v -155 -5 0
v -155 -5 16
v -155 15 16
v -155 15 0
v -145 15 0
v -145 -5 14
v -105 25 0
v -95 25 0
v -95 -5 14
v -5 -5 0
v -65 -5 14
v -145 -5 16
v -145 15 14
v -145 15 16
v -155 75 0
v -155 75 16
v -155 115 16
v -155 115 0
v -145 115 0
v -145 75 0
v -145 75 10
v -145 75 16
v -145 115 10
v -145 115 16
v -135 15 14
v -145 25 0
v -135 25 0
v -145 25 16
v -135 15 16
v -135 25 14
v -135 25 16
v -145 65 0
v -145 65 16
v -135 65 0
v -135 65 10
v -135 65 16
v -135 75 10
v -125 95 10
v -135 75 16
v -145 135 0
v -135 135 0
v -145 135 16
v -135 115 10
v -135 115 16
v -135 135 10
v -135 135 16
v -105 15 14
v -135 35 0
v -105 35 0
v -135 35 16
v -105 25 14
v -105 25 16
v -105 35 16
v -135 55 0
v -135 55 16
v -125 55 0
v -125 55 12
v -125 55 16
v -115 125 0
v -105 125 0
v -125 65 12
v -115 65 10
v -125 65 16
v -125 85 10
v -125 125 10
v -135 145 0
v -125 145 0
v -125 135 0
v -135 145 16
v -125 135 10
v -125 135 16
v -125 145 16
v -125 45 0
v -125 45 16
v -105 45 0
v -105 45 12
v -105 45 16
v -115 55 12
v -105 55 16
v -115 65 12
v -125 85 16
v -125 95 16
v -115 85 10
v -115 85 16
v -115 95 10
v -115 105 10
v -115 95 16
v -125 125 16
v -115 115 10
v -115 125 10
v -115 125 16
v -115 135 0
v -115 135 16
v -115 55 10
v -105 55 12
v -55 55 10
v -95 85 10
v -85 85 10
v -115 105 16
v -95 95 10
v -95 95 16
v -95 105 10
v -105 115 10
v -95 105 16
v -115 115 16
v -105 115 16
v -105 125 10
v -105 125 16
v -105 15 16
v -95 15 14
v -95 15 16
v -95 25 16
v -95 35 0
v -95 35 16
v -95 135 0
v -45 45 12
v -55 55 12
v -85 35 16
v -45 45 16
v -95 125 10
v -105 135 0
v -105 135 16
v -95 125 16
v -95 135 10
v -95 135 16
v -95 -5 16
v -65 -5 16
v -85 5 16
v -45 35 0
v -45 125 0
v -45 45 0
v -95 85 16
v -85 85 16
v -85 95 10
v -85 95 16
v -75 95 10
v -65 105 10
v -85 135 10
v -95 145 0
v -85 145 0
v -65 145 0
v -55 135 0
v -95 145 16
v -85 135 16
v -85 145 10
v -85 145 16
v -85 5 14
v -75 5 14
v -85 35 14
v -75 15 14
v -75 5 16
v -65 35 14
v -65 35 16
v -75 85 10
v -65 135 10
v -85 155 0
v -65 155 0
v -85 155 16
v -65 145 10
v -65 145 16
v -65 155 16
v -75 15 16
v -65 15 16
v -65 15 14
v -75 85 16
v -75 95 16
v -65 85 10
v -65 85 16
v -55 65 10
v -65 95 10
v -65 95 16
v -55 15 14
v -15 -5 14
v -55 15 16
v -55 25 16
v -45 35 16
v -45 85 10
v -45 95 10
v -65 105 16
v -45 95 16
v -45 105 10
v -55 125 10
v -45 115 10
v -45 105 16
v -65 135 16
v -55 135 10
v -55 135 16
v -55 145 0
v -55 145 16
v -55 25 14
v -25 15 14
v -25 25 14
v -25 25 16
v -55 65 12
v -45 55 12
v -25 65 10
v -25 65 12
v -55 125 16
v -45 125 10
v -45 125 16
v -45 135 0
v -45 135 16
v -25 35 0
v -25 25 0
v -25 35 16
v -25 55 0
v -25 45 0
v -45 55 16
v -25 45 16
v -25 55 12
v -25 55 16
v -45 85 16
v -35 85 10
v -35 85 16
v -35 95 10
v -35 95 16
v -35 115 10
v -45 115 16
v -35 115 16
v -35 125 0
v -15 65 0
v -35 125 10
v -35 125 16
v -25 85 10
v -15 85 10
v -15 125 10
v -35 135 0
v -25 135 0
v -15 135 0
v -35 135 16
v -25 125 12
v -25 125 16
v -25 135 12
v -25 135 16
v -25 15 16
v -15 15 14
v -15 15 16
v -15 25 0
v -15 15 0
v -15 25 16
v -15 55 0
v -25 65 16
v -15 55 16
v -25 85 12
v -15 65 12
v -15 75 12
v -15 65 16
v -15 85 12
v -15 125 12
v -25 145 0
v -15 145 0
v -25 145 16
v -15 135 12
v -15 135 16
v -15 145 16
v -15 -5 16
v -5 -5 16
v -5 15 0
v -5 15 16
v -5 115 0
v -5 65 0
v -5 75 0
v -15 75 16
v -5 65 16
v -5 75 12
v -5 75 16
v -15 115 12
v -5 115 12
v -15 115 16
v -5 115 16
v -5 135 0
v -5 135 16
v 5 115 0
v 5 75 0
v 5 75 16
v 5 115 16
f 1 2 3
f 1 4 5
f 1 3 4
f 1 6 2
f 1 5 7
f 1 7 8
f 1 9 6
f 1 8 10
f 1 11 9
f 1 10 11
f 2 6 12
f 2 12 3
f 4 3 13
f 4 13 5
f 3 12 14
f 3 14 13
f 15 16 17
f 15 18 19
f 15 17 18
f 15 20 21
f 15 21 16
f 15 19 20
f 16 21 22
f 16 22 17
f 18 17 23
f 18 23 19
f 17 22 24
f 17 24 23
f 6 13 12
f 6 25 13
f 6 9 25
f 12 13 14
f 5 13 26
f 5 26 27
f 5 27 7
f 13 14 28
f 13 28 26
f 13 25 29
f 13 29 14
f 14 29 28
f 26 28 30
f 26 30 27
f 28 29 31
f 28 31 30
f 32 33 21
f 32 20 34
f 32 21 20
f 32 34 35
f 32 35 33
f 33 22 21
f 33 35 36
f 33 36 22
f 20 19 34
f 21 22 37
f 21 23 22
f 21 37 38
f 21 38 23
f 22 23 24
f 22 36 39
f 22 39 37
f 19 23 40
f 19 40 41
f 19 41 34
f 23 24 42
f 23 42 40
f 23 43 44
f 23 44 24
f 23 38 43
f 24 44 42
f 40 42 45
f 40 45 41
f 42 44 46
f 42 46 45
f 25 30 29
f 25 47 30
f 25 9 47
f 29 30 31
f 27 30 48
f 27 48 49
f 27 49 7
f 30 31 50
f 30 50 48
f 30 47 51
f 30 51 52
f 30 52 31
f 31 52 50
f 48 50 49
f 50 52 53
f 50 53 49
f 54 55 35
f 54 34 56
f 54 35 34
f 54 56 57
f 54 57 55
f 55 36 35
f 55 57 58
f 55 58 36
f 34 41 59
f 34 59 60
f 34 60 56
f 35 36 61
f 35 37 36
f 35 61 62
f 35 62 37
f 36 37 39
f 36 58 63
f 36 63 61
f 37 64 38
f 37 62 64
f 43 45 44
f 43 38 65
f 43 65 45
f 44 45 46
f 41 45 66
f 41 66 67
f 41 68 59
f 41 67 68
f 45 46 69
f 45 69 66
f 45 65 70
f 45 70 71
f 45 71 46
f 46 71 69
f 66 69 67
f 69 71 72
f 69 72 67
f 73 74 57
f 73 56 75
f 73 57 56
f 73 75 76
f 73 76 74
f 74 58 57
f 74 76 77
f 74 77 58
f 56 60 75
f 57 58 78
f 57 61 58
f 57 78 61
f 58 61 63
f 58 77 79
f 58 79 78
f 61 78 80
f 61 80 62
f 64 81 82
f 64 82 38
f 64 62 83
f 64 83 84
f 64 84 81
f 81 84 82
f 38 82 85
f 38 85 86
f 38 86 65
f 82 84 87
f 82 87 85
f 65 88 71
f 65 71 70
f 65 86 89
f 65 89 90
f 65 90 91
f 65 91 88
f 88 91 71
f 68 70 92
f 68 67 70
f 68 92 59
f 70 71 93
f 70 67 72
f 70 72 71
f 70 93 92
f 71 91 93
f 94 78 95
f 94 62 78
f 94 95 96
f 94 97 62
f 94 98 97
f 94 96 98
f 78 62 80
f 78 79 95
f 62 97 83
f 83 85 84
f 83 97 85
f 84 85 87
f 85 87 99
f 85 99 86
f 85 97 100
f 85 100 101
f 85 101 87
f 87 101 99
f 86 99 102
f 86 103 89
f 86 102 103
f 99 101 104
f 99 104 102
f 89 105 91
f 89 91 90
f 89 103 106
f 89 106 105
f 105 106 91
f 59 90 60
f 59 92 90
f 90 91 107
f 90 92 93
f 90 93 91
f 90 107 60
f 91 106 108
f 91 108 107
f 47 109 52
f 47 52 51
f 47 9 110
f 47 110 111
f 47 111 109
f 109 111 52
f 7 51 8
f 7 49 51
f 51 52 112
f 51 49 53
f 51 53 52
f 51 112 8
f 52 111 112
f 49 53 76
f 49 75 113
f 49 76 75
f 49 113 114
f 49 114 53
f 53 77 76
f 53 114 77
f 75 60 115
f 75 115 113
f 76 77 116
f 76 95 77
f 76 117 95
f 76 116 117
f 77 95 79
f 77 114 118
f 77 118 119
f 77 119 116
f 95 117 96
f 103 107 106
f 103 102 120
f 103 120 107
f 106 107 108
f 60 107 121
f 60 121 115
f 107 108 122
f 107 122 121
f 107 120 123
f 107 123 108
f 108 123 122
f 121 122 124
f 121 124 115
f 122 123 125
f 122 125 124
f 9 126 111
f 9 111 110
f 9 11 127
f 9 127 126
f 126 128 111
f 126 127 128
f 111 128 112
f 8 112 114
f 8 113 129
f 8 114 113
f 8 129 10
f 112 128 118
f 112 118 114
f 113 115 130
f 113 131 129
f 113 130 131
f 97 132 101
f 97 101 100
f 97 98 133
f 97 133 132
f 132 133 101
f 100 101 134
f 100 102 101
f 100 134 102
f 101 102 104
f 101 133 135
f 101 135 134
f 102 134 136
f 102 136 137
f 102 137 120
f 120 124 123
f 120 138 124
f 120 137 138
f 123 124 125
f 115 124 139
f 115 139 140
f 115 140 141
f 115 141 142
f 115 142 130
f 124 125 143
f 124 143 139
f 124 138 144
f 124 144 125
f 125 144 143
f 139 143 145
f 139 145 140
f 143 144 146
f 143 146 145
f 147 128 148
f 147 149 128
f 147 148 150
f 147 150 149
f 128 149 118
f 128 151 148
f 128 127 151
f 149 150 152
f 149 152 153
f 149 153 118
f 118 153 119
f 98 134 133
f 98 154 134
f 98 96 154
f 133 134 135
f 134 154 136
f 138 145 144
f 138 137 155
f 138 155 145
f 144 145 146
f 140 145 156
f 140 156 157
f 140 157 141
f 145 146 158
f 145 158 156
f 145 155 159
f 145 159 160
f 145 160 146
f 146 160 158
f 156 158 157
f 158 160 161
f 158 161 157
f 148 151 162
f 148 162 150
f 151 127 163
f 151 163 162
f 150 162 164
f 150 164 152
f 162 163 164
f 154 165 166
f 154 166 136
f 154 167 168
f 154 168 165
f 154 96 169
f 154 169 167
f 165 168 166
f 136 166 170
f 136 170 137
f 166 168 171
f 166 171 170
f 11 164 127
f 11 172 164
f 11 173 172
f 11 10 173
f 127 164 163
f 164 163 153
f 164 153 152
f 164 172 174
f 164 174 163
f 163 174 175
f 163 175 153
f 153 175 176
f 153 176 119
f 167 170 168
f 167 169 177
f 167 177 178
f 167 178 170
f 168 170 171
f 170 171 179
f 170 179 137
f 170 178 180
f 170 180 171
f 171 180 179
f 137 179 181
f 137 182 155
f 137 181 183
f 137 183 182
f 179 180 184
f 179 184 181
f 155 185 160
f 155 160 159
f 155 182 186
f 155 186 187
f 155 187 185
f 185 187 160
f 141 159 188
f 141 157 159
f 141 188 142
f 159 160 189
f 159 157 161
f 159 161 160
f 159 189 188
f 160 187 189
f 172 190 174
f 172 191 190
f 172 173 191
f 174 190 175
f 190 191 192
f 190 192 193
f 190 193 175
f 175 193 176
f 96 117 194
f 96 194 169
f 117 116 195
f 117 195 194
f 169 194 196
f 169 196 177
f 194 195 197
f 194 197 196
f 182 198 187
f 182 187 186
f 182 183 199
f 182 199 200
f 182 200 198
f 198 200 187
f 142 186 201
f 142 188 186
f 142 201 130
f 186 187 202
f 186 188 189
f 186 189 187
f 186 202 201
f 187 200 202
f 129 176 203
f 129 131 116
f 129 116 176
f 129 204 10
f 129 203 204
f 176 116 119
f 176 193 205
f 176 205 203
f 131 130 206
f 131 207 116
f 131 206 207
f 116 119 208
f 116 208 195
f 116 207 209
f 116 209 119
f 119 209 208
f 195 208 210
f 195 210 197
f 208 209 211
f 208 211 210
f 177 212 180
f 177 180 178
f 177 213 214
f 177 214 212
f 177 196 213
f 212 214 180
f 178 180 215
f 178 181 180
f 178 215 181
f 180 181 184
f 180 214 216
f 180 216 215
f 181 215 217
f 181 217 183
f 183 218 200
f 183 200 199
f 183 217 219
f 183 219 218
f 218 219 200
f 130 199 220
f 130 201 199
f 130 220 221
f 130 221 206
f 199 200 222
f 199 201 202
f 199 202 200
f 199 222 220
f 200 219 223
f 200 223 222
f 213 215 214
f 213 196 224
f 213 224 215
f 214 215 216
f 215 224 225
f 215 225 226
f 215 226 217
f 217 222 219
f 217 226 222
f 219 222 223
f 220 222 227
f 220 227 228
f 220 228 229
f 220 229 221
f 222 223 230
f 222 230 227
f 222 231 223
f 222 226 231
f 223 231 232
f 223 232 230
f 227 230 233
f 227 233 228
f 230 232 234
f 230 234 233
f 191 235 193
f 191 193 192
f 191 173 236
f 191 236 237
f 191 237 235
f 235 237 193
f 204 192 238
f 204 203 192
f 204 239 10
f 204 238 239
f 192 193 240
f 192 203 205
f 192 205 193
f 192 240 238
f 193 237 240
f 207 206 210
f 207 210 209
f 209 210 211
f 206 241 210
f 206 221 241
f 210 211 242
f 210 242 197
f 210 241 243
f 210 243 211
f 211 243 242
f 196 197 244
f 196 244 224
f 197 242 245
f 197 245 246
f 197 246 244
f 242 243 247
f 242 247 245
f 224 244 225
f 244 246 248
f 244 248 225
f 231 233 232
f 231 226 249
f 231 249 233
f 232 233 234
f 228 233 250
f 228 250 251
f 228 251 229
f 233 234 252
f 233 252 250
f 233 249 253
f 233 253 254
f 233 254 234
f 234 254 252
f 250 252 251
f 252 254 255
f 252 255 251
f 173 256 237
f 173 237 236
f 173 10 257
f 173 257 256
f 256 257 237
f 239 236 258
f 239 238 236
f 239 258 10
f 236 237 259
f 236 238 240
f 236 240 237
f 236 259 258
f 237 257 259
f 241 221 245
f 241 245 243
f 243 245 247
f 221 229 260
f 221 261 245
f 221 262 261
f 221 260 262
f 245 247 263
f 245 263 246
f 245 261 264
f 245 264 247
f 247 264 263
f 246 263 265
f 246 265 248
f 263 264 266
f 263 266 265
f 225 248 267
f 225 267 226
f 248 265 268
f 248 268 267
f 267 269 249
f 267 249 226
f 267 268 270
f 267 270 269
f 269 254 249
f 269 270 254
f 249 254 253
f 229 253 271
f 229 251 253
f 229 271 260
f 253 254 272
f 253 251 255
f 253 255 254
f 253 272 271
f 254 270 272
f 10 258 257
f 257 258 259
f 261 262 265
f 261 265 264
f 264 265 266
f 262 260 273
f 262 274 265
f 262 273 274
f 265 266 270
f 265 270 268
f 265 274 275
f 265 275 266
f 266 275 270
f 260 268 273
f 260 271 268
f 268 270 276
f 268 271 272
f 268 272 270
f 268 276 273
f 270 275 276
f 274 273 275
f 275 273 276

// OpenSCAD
// file: pixel_canvas.scad
module pixel(x, y, pixel_color, pixel_height = 1.0) {
    color(pixel_color) {
	linear_extrude(height = pixel_height) {
	    translate([x, y]) {
		square(size = 1, center=true);
	    }
	}
    }
}

module pixel_canvas(canvas_size, pixel_count, pixels, color_palette, color_heights) {
    pixel_size = canvas_size / pixel_count;
    scale([pixel_size, pixel_size, 1.0]) {
	for (coord = pixels) {
	    x = coord[0];
	    y = coord[1];
	    color_index = coord[2];
	    pixel(x=x, y=y, pixel_color=color_palette[color_index], pixel_height=color_heights[color_index] * pixel_size);
	}
    }
}
// main file
use <pixel_canvas.scad>

COLOR_PALETTE = [
  "orange",
  "red",
  "green",
  "black",
];

COLOR_HEIGHTS = [
  1.0,
  1.2,
  1.4,
  1.6,
];

PIXELS = [
	  [-8, 15, 3], [-7, 15, 3],
	  [-13, 14, 3], [-9, 14, 3], [-8, 14, 0], [-7, 14, 0], [-6, 14, 3], [-2, 14, 3],
	  [-14, 13, 3], [-13, 13, 0], [-12, 13, 3], [-10, 13, 3], [-9, 13, 0], [-8, 13, 0], [-7, 13, 0], [-6, 13, 0], [-5, 13, 3], [-3, 13, 3], [-2, 13, 1], [-1, 13, 3],
	  [-14, 12, 3], [-13, 12, 0], [-12, 12, 0], [-11, 12, 3], [-10, 12, 0], [-9, 12, 0], [-8, 12, 0], [-7, 12, 0], [-6, 12, 0], [-5, 12, 0], [-4, 12, 3], [-3, 12, 0], [-2, 12, 0], [-1, 12, 3],
	  [-15, 11, 3], [-14, 11, 0], [-13, 11, 0], [-12, 11, 0], [-11, 11, 0], [-10, 11, 0], [-9, 11, 0], [-8, 11, 0], [-7, 11, 0], [-6, 11, 0], [-5, 11, 0], [-4, 11, 0], [-3, 11, 0], [-2, 11, 0], [-1, 11, 1], [0, 11, 3],
	  [-15, 10, 3], [-14, 10, 0], [-13, 10, 0], [-12, 10, 0], [-11, 10, 3], [-10, 10, 3], [-9, 10, 0], [-8, 10, 0], [-7, 10, 0], [-6, 10, 3], [-5, 10, 3], [-4, 10, 0], [-3, 10, 0], [-2, 10, 0], [-1, 10, 1], [0, 10, 3],
	  [-15, 9, 3], [-14, 9, 0], [-13, 9, 0], [-12, 9, 3], [-11, 9, 0], [-10, 9, 0], [-9, 9, 3], [-8, 9, 0], [-7, 9, 3], [-6, 9, 0], [-5, 9, 0], [-4, 9, 3], [-3, 9, 0], [-2, 9, 0], [-1, 9, 1], [0, 9, 3],
	  [-15, 8, 3], [-14, 8, 0], [-13, 8, 0], [-12, 8, 0], [-11, 8, 0], [-10, 8, 0], [-9, 8, 0], [-8, 8, 0], [-7, 8, 0], [-6, 8, 0], [-5, 8, 0], [-4, 8, 0], [-3, 8, 0], [-2, 8, 1], [-1, 8, 1], [0, 8, 3],
	  [-14, 7, 3], [-13, 7, 0], [-12, 7, 0], [-11, 7, 0], [-10, 7, 0], [-9, 7, 0], [-8, 7, 0], [-7, 7, 0], [-6, 7, 0], [-5, 7, 0], [-4, 7, 0], [-3, 7, 0], [-2, 7, 1], [-1, 7, 3],
	  [-13, 6, 3], [-12, 6, 1], [-11, 6, 0], [-10, 6, 0], [-9, 6, 0], [-8, 6, 0], [-7, 6, 0], [-6, 6, 0], [-5, 6, 1], [-4, 6, 1], [-3, 6, 1], [-2, 6, 3],
	  [-12, 5, 3], [-11, 5, 3], [-10, 5, 1], [-9, 5, 1], [-8, 5, 1], [-7, 5, 1], [-6, 5, 1], [-5, 5, 1], [-4, 5, 3], [-3, 5, 3],
	  [-10, 4, 3], [-9, 4, 3], [-8, 4, 3], [-7, 4, 3], [-6, 4, 3], [-5, 4, 3],
	  [-13, 3, 3], [-12, 3, 3], [-11, 3, 3], [-9, 3, 3], [-8, 3, 2], [-7, 3, 2], [-6, 3, 3], [-5, 3, 3], [-4, 3, 3], [-3, 3, 3],
	  [-14, 2, 3], [-13, 2, 2], [-12, 2, 2], [-11, 2, 2], [-10, 2, 3], [-9, 2, 3], [-8, 2, 2], [-7, 2, 2], [-6, 2, 3], [-5, 2, 2], [-4, 2, 2], [-3, 2, 2], [-2, 2, 3],
	  [-15, 1, 3], [-14, 1, 2], [-13, 1, 2], [-12, 1, 2], [-11, 1, 2], [-10, 1, 2], [-9, 1, 3], [-8, 1, 2], [-7, 1, 3], [-6, 1, 2], [-5, 1, 2], [-4, 1, 2], [-3, 1, 2], [-2, 1, 2], [-1, 1, 3],
	  [-15, 0, 3], [-14, 0, 2], [-13, 0, 2], [-12, 0, 2], [-11, 0, 2], [-10, 0, 2], [-9, 0, 3], [-8, 0, 3], [-7, 0, 3], [-6, 0, 2], [-5, 0, 2], [-4, 0, 2], [-3, 0, 2], [-2, 0, 2], [-1, 0, 3],
];

pixel_canvas(canvas_size=170, pixel_count=17, pixels=PIXELS, color_palette=COLOR_PALETTE, color_heights=COLOR_HEIGHTS);
